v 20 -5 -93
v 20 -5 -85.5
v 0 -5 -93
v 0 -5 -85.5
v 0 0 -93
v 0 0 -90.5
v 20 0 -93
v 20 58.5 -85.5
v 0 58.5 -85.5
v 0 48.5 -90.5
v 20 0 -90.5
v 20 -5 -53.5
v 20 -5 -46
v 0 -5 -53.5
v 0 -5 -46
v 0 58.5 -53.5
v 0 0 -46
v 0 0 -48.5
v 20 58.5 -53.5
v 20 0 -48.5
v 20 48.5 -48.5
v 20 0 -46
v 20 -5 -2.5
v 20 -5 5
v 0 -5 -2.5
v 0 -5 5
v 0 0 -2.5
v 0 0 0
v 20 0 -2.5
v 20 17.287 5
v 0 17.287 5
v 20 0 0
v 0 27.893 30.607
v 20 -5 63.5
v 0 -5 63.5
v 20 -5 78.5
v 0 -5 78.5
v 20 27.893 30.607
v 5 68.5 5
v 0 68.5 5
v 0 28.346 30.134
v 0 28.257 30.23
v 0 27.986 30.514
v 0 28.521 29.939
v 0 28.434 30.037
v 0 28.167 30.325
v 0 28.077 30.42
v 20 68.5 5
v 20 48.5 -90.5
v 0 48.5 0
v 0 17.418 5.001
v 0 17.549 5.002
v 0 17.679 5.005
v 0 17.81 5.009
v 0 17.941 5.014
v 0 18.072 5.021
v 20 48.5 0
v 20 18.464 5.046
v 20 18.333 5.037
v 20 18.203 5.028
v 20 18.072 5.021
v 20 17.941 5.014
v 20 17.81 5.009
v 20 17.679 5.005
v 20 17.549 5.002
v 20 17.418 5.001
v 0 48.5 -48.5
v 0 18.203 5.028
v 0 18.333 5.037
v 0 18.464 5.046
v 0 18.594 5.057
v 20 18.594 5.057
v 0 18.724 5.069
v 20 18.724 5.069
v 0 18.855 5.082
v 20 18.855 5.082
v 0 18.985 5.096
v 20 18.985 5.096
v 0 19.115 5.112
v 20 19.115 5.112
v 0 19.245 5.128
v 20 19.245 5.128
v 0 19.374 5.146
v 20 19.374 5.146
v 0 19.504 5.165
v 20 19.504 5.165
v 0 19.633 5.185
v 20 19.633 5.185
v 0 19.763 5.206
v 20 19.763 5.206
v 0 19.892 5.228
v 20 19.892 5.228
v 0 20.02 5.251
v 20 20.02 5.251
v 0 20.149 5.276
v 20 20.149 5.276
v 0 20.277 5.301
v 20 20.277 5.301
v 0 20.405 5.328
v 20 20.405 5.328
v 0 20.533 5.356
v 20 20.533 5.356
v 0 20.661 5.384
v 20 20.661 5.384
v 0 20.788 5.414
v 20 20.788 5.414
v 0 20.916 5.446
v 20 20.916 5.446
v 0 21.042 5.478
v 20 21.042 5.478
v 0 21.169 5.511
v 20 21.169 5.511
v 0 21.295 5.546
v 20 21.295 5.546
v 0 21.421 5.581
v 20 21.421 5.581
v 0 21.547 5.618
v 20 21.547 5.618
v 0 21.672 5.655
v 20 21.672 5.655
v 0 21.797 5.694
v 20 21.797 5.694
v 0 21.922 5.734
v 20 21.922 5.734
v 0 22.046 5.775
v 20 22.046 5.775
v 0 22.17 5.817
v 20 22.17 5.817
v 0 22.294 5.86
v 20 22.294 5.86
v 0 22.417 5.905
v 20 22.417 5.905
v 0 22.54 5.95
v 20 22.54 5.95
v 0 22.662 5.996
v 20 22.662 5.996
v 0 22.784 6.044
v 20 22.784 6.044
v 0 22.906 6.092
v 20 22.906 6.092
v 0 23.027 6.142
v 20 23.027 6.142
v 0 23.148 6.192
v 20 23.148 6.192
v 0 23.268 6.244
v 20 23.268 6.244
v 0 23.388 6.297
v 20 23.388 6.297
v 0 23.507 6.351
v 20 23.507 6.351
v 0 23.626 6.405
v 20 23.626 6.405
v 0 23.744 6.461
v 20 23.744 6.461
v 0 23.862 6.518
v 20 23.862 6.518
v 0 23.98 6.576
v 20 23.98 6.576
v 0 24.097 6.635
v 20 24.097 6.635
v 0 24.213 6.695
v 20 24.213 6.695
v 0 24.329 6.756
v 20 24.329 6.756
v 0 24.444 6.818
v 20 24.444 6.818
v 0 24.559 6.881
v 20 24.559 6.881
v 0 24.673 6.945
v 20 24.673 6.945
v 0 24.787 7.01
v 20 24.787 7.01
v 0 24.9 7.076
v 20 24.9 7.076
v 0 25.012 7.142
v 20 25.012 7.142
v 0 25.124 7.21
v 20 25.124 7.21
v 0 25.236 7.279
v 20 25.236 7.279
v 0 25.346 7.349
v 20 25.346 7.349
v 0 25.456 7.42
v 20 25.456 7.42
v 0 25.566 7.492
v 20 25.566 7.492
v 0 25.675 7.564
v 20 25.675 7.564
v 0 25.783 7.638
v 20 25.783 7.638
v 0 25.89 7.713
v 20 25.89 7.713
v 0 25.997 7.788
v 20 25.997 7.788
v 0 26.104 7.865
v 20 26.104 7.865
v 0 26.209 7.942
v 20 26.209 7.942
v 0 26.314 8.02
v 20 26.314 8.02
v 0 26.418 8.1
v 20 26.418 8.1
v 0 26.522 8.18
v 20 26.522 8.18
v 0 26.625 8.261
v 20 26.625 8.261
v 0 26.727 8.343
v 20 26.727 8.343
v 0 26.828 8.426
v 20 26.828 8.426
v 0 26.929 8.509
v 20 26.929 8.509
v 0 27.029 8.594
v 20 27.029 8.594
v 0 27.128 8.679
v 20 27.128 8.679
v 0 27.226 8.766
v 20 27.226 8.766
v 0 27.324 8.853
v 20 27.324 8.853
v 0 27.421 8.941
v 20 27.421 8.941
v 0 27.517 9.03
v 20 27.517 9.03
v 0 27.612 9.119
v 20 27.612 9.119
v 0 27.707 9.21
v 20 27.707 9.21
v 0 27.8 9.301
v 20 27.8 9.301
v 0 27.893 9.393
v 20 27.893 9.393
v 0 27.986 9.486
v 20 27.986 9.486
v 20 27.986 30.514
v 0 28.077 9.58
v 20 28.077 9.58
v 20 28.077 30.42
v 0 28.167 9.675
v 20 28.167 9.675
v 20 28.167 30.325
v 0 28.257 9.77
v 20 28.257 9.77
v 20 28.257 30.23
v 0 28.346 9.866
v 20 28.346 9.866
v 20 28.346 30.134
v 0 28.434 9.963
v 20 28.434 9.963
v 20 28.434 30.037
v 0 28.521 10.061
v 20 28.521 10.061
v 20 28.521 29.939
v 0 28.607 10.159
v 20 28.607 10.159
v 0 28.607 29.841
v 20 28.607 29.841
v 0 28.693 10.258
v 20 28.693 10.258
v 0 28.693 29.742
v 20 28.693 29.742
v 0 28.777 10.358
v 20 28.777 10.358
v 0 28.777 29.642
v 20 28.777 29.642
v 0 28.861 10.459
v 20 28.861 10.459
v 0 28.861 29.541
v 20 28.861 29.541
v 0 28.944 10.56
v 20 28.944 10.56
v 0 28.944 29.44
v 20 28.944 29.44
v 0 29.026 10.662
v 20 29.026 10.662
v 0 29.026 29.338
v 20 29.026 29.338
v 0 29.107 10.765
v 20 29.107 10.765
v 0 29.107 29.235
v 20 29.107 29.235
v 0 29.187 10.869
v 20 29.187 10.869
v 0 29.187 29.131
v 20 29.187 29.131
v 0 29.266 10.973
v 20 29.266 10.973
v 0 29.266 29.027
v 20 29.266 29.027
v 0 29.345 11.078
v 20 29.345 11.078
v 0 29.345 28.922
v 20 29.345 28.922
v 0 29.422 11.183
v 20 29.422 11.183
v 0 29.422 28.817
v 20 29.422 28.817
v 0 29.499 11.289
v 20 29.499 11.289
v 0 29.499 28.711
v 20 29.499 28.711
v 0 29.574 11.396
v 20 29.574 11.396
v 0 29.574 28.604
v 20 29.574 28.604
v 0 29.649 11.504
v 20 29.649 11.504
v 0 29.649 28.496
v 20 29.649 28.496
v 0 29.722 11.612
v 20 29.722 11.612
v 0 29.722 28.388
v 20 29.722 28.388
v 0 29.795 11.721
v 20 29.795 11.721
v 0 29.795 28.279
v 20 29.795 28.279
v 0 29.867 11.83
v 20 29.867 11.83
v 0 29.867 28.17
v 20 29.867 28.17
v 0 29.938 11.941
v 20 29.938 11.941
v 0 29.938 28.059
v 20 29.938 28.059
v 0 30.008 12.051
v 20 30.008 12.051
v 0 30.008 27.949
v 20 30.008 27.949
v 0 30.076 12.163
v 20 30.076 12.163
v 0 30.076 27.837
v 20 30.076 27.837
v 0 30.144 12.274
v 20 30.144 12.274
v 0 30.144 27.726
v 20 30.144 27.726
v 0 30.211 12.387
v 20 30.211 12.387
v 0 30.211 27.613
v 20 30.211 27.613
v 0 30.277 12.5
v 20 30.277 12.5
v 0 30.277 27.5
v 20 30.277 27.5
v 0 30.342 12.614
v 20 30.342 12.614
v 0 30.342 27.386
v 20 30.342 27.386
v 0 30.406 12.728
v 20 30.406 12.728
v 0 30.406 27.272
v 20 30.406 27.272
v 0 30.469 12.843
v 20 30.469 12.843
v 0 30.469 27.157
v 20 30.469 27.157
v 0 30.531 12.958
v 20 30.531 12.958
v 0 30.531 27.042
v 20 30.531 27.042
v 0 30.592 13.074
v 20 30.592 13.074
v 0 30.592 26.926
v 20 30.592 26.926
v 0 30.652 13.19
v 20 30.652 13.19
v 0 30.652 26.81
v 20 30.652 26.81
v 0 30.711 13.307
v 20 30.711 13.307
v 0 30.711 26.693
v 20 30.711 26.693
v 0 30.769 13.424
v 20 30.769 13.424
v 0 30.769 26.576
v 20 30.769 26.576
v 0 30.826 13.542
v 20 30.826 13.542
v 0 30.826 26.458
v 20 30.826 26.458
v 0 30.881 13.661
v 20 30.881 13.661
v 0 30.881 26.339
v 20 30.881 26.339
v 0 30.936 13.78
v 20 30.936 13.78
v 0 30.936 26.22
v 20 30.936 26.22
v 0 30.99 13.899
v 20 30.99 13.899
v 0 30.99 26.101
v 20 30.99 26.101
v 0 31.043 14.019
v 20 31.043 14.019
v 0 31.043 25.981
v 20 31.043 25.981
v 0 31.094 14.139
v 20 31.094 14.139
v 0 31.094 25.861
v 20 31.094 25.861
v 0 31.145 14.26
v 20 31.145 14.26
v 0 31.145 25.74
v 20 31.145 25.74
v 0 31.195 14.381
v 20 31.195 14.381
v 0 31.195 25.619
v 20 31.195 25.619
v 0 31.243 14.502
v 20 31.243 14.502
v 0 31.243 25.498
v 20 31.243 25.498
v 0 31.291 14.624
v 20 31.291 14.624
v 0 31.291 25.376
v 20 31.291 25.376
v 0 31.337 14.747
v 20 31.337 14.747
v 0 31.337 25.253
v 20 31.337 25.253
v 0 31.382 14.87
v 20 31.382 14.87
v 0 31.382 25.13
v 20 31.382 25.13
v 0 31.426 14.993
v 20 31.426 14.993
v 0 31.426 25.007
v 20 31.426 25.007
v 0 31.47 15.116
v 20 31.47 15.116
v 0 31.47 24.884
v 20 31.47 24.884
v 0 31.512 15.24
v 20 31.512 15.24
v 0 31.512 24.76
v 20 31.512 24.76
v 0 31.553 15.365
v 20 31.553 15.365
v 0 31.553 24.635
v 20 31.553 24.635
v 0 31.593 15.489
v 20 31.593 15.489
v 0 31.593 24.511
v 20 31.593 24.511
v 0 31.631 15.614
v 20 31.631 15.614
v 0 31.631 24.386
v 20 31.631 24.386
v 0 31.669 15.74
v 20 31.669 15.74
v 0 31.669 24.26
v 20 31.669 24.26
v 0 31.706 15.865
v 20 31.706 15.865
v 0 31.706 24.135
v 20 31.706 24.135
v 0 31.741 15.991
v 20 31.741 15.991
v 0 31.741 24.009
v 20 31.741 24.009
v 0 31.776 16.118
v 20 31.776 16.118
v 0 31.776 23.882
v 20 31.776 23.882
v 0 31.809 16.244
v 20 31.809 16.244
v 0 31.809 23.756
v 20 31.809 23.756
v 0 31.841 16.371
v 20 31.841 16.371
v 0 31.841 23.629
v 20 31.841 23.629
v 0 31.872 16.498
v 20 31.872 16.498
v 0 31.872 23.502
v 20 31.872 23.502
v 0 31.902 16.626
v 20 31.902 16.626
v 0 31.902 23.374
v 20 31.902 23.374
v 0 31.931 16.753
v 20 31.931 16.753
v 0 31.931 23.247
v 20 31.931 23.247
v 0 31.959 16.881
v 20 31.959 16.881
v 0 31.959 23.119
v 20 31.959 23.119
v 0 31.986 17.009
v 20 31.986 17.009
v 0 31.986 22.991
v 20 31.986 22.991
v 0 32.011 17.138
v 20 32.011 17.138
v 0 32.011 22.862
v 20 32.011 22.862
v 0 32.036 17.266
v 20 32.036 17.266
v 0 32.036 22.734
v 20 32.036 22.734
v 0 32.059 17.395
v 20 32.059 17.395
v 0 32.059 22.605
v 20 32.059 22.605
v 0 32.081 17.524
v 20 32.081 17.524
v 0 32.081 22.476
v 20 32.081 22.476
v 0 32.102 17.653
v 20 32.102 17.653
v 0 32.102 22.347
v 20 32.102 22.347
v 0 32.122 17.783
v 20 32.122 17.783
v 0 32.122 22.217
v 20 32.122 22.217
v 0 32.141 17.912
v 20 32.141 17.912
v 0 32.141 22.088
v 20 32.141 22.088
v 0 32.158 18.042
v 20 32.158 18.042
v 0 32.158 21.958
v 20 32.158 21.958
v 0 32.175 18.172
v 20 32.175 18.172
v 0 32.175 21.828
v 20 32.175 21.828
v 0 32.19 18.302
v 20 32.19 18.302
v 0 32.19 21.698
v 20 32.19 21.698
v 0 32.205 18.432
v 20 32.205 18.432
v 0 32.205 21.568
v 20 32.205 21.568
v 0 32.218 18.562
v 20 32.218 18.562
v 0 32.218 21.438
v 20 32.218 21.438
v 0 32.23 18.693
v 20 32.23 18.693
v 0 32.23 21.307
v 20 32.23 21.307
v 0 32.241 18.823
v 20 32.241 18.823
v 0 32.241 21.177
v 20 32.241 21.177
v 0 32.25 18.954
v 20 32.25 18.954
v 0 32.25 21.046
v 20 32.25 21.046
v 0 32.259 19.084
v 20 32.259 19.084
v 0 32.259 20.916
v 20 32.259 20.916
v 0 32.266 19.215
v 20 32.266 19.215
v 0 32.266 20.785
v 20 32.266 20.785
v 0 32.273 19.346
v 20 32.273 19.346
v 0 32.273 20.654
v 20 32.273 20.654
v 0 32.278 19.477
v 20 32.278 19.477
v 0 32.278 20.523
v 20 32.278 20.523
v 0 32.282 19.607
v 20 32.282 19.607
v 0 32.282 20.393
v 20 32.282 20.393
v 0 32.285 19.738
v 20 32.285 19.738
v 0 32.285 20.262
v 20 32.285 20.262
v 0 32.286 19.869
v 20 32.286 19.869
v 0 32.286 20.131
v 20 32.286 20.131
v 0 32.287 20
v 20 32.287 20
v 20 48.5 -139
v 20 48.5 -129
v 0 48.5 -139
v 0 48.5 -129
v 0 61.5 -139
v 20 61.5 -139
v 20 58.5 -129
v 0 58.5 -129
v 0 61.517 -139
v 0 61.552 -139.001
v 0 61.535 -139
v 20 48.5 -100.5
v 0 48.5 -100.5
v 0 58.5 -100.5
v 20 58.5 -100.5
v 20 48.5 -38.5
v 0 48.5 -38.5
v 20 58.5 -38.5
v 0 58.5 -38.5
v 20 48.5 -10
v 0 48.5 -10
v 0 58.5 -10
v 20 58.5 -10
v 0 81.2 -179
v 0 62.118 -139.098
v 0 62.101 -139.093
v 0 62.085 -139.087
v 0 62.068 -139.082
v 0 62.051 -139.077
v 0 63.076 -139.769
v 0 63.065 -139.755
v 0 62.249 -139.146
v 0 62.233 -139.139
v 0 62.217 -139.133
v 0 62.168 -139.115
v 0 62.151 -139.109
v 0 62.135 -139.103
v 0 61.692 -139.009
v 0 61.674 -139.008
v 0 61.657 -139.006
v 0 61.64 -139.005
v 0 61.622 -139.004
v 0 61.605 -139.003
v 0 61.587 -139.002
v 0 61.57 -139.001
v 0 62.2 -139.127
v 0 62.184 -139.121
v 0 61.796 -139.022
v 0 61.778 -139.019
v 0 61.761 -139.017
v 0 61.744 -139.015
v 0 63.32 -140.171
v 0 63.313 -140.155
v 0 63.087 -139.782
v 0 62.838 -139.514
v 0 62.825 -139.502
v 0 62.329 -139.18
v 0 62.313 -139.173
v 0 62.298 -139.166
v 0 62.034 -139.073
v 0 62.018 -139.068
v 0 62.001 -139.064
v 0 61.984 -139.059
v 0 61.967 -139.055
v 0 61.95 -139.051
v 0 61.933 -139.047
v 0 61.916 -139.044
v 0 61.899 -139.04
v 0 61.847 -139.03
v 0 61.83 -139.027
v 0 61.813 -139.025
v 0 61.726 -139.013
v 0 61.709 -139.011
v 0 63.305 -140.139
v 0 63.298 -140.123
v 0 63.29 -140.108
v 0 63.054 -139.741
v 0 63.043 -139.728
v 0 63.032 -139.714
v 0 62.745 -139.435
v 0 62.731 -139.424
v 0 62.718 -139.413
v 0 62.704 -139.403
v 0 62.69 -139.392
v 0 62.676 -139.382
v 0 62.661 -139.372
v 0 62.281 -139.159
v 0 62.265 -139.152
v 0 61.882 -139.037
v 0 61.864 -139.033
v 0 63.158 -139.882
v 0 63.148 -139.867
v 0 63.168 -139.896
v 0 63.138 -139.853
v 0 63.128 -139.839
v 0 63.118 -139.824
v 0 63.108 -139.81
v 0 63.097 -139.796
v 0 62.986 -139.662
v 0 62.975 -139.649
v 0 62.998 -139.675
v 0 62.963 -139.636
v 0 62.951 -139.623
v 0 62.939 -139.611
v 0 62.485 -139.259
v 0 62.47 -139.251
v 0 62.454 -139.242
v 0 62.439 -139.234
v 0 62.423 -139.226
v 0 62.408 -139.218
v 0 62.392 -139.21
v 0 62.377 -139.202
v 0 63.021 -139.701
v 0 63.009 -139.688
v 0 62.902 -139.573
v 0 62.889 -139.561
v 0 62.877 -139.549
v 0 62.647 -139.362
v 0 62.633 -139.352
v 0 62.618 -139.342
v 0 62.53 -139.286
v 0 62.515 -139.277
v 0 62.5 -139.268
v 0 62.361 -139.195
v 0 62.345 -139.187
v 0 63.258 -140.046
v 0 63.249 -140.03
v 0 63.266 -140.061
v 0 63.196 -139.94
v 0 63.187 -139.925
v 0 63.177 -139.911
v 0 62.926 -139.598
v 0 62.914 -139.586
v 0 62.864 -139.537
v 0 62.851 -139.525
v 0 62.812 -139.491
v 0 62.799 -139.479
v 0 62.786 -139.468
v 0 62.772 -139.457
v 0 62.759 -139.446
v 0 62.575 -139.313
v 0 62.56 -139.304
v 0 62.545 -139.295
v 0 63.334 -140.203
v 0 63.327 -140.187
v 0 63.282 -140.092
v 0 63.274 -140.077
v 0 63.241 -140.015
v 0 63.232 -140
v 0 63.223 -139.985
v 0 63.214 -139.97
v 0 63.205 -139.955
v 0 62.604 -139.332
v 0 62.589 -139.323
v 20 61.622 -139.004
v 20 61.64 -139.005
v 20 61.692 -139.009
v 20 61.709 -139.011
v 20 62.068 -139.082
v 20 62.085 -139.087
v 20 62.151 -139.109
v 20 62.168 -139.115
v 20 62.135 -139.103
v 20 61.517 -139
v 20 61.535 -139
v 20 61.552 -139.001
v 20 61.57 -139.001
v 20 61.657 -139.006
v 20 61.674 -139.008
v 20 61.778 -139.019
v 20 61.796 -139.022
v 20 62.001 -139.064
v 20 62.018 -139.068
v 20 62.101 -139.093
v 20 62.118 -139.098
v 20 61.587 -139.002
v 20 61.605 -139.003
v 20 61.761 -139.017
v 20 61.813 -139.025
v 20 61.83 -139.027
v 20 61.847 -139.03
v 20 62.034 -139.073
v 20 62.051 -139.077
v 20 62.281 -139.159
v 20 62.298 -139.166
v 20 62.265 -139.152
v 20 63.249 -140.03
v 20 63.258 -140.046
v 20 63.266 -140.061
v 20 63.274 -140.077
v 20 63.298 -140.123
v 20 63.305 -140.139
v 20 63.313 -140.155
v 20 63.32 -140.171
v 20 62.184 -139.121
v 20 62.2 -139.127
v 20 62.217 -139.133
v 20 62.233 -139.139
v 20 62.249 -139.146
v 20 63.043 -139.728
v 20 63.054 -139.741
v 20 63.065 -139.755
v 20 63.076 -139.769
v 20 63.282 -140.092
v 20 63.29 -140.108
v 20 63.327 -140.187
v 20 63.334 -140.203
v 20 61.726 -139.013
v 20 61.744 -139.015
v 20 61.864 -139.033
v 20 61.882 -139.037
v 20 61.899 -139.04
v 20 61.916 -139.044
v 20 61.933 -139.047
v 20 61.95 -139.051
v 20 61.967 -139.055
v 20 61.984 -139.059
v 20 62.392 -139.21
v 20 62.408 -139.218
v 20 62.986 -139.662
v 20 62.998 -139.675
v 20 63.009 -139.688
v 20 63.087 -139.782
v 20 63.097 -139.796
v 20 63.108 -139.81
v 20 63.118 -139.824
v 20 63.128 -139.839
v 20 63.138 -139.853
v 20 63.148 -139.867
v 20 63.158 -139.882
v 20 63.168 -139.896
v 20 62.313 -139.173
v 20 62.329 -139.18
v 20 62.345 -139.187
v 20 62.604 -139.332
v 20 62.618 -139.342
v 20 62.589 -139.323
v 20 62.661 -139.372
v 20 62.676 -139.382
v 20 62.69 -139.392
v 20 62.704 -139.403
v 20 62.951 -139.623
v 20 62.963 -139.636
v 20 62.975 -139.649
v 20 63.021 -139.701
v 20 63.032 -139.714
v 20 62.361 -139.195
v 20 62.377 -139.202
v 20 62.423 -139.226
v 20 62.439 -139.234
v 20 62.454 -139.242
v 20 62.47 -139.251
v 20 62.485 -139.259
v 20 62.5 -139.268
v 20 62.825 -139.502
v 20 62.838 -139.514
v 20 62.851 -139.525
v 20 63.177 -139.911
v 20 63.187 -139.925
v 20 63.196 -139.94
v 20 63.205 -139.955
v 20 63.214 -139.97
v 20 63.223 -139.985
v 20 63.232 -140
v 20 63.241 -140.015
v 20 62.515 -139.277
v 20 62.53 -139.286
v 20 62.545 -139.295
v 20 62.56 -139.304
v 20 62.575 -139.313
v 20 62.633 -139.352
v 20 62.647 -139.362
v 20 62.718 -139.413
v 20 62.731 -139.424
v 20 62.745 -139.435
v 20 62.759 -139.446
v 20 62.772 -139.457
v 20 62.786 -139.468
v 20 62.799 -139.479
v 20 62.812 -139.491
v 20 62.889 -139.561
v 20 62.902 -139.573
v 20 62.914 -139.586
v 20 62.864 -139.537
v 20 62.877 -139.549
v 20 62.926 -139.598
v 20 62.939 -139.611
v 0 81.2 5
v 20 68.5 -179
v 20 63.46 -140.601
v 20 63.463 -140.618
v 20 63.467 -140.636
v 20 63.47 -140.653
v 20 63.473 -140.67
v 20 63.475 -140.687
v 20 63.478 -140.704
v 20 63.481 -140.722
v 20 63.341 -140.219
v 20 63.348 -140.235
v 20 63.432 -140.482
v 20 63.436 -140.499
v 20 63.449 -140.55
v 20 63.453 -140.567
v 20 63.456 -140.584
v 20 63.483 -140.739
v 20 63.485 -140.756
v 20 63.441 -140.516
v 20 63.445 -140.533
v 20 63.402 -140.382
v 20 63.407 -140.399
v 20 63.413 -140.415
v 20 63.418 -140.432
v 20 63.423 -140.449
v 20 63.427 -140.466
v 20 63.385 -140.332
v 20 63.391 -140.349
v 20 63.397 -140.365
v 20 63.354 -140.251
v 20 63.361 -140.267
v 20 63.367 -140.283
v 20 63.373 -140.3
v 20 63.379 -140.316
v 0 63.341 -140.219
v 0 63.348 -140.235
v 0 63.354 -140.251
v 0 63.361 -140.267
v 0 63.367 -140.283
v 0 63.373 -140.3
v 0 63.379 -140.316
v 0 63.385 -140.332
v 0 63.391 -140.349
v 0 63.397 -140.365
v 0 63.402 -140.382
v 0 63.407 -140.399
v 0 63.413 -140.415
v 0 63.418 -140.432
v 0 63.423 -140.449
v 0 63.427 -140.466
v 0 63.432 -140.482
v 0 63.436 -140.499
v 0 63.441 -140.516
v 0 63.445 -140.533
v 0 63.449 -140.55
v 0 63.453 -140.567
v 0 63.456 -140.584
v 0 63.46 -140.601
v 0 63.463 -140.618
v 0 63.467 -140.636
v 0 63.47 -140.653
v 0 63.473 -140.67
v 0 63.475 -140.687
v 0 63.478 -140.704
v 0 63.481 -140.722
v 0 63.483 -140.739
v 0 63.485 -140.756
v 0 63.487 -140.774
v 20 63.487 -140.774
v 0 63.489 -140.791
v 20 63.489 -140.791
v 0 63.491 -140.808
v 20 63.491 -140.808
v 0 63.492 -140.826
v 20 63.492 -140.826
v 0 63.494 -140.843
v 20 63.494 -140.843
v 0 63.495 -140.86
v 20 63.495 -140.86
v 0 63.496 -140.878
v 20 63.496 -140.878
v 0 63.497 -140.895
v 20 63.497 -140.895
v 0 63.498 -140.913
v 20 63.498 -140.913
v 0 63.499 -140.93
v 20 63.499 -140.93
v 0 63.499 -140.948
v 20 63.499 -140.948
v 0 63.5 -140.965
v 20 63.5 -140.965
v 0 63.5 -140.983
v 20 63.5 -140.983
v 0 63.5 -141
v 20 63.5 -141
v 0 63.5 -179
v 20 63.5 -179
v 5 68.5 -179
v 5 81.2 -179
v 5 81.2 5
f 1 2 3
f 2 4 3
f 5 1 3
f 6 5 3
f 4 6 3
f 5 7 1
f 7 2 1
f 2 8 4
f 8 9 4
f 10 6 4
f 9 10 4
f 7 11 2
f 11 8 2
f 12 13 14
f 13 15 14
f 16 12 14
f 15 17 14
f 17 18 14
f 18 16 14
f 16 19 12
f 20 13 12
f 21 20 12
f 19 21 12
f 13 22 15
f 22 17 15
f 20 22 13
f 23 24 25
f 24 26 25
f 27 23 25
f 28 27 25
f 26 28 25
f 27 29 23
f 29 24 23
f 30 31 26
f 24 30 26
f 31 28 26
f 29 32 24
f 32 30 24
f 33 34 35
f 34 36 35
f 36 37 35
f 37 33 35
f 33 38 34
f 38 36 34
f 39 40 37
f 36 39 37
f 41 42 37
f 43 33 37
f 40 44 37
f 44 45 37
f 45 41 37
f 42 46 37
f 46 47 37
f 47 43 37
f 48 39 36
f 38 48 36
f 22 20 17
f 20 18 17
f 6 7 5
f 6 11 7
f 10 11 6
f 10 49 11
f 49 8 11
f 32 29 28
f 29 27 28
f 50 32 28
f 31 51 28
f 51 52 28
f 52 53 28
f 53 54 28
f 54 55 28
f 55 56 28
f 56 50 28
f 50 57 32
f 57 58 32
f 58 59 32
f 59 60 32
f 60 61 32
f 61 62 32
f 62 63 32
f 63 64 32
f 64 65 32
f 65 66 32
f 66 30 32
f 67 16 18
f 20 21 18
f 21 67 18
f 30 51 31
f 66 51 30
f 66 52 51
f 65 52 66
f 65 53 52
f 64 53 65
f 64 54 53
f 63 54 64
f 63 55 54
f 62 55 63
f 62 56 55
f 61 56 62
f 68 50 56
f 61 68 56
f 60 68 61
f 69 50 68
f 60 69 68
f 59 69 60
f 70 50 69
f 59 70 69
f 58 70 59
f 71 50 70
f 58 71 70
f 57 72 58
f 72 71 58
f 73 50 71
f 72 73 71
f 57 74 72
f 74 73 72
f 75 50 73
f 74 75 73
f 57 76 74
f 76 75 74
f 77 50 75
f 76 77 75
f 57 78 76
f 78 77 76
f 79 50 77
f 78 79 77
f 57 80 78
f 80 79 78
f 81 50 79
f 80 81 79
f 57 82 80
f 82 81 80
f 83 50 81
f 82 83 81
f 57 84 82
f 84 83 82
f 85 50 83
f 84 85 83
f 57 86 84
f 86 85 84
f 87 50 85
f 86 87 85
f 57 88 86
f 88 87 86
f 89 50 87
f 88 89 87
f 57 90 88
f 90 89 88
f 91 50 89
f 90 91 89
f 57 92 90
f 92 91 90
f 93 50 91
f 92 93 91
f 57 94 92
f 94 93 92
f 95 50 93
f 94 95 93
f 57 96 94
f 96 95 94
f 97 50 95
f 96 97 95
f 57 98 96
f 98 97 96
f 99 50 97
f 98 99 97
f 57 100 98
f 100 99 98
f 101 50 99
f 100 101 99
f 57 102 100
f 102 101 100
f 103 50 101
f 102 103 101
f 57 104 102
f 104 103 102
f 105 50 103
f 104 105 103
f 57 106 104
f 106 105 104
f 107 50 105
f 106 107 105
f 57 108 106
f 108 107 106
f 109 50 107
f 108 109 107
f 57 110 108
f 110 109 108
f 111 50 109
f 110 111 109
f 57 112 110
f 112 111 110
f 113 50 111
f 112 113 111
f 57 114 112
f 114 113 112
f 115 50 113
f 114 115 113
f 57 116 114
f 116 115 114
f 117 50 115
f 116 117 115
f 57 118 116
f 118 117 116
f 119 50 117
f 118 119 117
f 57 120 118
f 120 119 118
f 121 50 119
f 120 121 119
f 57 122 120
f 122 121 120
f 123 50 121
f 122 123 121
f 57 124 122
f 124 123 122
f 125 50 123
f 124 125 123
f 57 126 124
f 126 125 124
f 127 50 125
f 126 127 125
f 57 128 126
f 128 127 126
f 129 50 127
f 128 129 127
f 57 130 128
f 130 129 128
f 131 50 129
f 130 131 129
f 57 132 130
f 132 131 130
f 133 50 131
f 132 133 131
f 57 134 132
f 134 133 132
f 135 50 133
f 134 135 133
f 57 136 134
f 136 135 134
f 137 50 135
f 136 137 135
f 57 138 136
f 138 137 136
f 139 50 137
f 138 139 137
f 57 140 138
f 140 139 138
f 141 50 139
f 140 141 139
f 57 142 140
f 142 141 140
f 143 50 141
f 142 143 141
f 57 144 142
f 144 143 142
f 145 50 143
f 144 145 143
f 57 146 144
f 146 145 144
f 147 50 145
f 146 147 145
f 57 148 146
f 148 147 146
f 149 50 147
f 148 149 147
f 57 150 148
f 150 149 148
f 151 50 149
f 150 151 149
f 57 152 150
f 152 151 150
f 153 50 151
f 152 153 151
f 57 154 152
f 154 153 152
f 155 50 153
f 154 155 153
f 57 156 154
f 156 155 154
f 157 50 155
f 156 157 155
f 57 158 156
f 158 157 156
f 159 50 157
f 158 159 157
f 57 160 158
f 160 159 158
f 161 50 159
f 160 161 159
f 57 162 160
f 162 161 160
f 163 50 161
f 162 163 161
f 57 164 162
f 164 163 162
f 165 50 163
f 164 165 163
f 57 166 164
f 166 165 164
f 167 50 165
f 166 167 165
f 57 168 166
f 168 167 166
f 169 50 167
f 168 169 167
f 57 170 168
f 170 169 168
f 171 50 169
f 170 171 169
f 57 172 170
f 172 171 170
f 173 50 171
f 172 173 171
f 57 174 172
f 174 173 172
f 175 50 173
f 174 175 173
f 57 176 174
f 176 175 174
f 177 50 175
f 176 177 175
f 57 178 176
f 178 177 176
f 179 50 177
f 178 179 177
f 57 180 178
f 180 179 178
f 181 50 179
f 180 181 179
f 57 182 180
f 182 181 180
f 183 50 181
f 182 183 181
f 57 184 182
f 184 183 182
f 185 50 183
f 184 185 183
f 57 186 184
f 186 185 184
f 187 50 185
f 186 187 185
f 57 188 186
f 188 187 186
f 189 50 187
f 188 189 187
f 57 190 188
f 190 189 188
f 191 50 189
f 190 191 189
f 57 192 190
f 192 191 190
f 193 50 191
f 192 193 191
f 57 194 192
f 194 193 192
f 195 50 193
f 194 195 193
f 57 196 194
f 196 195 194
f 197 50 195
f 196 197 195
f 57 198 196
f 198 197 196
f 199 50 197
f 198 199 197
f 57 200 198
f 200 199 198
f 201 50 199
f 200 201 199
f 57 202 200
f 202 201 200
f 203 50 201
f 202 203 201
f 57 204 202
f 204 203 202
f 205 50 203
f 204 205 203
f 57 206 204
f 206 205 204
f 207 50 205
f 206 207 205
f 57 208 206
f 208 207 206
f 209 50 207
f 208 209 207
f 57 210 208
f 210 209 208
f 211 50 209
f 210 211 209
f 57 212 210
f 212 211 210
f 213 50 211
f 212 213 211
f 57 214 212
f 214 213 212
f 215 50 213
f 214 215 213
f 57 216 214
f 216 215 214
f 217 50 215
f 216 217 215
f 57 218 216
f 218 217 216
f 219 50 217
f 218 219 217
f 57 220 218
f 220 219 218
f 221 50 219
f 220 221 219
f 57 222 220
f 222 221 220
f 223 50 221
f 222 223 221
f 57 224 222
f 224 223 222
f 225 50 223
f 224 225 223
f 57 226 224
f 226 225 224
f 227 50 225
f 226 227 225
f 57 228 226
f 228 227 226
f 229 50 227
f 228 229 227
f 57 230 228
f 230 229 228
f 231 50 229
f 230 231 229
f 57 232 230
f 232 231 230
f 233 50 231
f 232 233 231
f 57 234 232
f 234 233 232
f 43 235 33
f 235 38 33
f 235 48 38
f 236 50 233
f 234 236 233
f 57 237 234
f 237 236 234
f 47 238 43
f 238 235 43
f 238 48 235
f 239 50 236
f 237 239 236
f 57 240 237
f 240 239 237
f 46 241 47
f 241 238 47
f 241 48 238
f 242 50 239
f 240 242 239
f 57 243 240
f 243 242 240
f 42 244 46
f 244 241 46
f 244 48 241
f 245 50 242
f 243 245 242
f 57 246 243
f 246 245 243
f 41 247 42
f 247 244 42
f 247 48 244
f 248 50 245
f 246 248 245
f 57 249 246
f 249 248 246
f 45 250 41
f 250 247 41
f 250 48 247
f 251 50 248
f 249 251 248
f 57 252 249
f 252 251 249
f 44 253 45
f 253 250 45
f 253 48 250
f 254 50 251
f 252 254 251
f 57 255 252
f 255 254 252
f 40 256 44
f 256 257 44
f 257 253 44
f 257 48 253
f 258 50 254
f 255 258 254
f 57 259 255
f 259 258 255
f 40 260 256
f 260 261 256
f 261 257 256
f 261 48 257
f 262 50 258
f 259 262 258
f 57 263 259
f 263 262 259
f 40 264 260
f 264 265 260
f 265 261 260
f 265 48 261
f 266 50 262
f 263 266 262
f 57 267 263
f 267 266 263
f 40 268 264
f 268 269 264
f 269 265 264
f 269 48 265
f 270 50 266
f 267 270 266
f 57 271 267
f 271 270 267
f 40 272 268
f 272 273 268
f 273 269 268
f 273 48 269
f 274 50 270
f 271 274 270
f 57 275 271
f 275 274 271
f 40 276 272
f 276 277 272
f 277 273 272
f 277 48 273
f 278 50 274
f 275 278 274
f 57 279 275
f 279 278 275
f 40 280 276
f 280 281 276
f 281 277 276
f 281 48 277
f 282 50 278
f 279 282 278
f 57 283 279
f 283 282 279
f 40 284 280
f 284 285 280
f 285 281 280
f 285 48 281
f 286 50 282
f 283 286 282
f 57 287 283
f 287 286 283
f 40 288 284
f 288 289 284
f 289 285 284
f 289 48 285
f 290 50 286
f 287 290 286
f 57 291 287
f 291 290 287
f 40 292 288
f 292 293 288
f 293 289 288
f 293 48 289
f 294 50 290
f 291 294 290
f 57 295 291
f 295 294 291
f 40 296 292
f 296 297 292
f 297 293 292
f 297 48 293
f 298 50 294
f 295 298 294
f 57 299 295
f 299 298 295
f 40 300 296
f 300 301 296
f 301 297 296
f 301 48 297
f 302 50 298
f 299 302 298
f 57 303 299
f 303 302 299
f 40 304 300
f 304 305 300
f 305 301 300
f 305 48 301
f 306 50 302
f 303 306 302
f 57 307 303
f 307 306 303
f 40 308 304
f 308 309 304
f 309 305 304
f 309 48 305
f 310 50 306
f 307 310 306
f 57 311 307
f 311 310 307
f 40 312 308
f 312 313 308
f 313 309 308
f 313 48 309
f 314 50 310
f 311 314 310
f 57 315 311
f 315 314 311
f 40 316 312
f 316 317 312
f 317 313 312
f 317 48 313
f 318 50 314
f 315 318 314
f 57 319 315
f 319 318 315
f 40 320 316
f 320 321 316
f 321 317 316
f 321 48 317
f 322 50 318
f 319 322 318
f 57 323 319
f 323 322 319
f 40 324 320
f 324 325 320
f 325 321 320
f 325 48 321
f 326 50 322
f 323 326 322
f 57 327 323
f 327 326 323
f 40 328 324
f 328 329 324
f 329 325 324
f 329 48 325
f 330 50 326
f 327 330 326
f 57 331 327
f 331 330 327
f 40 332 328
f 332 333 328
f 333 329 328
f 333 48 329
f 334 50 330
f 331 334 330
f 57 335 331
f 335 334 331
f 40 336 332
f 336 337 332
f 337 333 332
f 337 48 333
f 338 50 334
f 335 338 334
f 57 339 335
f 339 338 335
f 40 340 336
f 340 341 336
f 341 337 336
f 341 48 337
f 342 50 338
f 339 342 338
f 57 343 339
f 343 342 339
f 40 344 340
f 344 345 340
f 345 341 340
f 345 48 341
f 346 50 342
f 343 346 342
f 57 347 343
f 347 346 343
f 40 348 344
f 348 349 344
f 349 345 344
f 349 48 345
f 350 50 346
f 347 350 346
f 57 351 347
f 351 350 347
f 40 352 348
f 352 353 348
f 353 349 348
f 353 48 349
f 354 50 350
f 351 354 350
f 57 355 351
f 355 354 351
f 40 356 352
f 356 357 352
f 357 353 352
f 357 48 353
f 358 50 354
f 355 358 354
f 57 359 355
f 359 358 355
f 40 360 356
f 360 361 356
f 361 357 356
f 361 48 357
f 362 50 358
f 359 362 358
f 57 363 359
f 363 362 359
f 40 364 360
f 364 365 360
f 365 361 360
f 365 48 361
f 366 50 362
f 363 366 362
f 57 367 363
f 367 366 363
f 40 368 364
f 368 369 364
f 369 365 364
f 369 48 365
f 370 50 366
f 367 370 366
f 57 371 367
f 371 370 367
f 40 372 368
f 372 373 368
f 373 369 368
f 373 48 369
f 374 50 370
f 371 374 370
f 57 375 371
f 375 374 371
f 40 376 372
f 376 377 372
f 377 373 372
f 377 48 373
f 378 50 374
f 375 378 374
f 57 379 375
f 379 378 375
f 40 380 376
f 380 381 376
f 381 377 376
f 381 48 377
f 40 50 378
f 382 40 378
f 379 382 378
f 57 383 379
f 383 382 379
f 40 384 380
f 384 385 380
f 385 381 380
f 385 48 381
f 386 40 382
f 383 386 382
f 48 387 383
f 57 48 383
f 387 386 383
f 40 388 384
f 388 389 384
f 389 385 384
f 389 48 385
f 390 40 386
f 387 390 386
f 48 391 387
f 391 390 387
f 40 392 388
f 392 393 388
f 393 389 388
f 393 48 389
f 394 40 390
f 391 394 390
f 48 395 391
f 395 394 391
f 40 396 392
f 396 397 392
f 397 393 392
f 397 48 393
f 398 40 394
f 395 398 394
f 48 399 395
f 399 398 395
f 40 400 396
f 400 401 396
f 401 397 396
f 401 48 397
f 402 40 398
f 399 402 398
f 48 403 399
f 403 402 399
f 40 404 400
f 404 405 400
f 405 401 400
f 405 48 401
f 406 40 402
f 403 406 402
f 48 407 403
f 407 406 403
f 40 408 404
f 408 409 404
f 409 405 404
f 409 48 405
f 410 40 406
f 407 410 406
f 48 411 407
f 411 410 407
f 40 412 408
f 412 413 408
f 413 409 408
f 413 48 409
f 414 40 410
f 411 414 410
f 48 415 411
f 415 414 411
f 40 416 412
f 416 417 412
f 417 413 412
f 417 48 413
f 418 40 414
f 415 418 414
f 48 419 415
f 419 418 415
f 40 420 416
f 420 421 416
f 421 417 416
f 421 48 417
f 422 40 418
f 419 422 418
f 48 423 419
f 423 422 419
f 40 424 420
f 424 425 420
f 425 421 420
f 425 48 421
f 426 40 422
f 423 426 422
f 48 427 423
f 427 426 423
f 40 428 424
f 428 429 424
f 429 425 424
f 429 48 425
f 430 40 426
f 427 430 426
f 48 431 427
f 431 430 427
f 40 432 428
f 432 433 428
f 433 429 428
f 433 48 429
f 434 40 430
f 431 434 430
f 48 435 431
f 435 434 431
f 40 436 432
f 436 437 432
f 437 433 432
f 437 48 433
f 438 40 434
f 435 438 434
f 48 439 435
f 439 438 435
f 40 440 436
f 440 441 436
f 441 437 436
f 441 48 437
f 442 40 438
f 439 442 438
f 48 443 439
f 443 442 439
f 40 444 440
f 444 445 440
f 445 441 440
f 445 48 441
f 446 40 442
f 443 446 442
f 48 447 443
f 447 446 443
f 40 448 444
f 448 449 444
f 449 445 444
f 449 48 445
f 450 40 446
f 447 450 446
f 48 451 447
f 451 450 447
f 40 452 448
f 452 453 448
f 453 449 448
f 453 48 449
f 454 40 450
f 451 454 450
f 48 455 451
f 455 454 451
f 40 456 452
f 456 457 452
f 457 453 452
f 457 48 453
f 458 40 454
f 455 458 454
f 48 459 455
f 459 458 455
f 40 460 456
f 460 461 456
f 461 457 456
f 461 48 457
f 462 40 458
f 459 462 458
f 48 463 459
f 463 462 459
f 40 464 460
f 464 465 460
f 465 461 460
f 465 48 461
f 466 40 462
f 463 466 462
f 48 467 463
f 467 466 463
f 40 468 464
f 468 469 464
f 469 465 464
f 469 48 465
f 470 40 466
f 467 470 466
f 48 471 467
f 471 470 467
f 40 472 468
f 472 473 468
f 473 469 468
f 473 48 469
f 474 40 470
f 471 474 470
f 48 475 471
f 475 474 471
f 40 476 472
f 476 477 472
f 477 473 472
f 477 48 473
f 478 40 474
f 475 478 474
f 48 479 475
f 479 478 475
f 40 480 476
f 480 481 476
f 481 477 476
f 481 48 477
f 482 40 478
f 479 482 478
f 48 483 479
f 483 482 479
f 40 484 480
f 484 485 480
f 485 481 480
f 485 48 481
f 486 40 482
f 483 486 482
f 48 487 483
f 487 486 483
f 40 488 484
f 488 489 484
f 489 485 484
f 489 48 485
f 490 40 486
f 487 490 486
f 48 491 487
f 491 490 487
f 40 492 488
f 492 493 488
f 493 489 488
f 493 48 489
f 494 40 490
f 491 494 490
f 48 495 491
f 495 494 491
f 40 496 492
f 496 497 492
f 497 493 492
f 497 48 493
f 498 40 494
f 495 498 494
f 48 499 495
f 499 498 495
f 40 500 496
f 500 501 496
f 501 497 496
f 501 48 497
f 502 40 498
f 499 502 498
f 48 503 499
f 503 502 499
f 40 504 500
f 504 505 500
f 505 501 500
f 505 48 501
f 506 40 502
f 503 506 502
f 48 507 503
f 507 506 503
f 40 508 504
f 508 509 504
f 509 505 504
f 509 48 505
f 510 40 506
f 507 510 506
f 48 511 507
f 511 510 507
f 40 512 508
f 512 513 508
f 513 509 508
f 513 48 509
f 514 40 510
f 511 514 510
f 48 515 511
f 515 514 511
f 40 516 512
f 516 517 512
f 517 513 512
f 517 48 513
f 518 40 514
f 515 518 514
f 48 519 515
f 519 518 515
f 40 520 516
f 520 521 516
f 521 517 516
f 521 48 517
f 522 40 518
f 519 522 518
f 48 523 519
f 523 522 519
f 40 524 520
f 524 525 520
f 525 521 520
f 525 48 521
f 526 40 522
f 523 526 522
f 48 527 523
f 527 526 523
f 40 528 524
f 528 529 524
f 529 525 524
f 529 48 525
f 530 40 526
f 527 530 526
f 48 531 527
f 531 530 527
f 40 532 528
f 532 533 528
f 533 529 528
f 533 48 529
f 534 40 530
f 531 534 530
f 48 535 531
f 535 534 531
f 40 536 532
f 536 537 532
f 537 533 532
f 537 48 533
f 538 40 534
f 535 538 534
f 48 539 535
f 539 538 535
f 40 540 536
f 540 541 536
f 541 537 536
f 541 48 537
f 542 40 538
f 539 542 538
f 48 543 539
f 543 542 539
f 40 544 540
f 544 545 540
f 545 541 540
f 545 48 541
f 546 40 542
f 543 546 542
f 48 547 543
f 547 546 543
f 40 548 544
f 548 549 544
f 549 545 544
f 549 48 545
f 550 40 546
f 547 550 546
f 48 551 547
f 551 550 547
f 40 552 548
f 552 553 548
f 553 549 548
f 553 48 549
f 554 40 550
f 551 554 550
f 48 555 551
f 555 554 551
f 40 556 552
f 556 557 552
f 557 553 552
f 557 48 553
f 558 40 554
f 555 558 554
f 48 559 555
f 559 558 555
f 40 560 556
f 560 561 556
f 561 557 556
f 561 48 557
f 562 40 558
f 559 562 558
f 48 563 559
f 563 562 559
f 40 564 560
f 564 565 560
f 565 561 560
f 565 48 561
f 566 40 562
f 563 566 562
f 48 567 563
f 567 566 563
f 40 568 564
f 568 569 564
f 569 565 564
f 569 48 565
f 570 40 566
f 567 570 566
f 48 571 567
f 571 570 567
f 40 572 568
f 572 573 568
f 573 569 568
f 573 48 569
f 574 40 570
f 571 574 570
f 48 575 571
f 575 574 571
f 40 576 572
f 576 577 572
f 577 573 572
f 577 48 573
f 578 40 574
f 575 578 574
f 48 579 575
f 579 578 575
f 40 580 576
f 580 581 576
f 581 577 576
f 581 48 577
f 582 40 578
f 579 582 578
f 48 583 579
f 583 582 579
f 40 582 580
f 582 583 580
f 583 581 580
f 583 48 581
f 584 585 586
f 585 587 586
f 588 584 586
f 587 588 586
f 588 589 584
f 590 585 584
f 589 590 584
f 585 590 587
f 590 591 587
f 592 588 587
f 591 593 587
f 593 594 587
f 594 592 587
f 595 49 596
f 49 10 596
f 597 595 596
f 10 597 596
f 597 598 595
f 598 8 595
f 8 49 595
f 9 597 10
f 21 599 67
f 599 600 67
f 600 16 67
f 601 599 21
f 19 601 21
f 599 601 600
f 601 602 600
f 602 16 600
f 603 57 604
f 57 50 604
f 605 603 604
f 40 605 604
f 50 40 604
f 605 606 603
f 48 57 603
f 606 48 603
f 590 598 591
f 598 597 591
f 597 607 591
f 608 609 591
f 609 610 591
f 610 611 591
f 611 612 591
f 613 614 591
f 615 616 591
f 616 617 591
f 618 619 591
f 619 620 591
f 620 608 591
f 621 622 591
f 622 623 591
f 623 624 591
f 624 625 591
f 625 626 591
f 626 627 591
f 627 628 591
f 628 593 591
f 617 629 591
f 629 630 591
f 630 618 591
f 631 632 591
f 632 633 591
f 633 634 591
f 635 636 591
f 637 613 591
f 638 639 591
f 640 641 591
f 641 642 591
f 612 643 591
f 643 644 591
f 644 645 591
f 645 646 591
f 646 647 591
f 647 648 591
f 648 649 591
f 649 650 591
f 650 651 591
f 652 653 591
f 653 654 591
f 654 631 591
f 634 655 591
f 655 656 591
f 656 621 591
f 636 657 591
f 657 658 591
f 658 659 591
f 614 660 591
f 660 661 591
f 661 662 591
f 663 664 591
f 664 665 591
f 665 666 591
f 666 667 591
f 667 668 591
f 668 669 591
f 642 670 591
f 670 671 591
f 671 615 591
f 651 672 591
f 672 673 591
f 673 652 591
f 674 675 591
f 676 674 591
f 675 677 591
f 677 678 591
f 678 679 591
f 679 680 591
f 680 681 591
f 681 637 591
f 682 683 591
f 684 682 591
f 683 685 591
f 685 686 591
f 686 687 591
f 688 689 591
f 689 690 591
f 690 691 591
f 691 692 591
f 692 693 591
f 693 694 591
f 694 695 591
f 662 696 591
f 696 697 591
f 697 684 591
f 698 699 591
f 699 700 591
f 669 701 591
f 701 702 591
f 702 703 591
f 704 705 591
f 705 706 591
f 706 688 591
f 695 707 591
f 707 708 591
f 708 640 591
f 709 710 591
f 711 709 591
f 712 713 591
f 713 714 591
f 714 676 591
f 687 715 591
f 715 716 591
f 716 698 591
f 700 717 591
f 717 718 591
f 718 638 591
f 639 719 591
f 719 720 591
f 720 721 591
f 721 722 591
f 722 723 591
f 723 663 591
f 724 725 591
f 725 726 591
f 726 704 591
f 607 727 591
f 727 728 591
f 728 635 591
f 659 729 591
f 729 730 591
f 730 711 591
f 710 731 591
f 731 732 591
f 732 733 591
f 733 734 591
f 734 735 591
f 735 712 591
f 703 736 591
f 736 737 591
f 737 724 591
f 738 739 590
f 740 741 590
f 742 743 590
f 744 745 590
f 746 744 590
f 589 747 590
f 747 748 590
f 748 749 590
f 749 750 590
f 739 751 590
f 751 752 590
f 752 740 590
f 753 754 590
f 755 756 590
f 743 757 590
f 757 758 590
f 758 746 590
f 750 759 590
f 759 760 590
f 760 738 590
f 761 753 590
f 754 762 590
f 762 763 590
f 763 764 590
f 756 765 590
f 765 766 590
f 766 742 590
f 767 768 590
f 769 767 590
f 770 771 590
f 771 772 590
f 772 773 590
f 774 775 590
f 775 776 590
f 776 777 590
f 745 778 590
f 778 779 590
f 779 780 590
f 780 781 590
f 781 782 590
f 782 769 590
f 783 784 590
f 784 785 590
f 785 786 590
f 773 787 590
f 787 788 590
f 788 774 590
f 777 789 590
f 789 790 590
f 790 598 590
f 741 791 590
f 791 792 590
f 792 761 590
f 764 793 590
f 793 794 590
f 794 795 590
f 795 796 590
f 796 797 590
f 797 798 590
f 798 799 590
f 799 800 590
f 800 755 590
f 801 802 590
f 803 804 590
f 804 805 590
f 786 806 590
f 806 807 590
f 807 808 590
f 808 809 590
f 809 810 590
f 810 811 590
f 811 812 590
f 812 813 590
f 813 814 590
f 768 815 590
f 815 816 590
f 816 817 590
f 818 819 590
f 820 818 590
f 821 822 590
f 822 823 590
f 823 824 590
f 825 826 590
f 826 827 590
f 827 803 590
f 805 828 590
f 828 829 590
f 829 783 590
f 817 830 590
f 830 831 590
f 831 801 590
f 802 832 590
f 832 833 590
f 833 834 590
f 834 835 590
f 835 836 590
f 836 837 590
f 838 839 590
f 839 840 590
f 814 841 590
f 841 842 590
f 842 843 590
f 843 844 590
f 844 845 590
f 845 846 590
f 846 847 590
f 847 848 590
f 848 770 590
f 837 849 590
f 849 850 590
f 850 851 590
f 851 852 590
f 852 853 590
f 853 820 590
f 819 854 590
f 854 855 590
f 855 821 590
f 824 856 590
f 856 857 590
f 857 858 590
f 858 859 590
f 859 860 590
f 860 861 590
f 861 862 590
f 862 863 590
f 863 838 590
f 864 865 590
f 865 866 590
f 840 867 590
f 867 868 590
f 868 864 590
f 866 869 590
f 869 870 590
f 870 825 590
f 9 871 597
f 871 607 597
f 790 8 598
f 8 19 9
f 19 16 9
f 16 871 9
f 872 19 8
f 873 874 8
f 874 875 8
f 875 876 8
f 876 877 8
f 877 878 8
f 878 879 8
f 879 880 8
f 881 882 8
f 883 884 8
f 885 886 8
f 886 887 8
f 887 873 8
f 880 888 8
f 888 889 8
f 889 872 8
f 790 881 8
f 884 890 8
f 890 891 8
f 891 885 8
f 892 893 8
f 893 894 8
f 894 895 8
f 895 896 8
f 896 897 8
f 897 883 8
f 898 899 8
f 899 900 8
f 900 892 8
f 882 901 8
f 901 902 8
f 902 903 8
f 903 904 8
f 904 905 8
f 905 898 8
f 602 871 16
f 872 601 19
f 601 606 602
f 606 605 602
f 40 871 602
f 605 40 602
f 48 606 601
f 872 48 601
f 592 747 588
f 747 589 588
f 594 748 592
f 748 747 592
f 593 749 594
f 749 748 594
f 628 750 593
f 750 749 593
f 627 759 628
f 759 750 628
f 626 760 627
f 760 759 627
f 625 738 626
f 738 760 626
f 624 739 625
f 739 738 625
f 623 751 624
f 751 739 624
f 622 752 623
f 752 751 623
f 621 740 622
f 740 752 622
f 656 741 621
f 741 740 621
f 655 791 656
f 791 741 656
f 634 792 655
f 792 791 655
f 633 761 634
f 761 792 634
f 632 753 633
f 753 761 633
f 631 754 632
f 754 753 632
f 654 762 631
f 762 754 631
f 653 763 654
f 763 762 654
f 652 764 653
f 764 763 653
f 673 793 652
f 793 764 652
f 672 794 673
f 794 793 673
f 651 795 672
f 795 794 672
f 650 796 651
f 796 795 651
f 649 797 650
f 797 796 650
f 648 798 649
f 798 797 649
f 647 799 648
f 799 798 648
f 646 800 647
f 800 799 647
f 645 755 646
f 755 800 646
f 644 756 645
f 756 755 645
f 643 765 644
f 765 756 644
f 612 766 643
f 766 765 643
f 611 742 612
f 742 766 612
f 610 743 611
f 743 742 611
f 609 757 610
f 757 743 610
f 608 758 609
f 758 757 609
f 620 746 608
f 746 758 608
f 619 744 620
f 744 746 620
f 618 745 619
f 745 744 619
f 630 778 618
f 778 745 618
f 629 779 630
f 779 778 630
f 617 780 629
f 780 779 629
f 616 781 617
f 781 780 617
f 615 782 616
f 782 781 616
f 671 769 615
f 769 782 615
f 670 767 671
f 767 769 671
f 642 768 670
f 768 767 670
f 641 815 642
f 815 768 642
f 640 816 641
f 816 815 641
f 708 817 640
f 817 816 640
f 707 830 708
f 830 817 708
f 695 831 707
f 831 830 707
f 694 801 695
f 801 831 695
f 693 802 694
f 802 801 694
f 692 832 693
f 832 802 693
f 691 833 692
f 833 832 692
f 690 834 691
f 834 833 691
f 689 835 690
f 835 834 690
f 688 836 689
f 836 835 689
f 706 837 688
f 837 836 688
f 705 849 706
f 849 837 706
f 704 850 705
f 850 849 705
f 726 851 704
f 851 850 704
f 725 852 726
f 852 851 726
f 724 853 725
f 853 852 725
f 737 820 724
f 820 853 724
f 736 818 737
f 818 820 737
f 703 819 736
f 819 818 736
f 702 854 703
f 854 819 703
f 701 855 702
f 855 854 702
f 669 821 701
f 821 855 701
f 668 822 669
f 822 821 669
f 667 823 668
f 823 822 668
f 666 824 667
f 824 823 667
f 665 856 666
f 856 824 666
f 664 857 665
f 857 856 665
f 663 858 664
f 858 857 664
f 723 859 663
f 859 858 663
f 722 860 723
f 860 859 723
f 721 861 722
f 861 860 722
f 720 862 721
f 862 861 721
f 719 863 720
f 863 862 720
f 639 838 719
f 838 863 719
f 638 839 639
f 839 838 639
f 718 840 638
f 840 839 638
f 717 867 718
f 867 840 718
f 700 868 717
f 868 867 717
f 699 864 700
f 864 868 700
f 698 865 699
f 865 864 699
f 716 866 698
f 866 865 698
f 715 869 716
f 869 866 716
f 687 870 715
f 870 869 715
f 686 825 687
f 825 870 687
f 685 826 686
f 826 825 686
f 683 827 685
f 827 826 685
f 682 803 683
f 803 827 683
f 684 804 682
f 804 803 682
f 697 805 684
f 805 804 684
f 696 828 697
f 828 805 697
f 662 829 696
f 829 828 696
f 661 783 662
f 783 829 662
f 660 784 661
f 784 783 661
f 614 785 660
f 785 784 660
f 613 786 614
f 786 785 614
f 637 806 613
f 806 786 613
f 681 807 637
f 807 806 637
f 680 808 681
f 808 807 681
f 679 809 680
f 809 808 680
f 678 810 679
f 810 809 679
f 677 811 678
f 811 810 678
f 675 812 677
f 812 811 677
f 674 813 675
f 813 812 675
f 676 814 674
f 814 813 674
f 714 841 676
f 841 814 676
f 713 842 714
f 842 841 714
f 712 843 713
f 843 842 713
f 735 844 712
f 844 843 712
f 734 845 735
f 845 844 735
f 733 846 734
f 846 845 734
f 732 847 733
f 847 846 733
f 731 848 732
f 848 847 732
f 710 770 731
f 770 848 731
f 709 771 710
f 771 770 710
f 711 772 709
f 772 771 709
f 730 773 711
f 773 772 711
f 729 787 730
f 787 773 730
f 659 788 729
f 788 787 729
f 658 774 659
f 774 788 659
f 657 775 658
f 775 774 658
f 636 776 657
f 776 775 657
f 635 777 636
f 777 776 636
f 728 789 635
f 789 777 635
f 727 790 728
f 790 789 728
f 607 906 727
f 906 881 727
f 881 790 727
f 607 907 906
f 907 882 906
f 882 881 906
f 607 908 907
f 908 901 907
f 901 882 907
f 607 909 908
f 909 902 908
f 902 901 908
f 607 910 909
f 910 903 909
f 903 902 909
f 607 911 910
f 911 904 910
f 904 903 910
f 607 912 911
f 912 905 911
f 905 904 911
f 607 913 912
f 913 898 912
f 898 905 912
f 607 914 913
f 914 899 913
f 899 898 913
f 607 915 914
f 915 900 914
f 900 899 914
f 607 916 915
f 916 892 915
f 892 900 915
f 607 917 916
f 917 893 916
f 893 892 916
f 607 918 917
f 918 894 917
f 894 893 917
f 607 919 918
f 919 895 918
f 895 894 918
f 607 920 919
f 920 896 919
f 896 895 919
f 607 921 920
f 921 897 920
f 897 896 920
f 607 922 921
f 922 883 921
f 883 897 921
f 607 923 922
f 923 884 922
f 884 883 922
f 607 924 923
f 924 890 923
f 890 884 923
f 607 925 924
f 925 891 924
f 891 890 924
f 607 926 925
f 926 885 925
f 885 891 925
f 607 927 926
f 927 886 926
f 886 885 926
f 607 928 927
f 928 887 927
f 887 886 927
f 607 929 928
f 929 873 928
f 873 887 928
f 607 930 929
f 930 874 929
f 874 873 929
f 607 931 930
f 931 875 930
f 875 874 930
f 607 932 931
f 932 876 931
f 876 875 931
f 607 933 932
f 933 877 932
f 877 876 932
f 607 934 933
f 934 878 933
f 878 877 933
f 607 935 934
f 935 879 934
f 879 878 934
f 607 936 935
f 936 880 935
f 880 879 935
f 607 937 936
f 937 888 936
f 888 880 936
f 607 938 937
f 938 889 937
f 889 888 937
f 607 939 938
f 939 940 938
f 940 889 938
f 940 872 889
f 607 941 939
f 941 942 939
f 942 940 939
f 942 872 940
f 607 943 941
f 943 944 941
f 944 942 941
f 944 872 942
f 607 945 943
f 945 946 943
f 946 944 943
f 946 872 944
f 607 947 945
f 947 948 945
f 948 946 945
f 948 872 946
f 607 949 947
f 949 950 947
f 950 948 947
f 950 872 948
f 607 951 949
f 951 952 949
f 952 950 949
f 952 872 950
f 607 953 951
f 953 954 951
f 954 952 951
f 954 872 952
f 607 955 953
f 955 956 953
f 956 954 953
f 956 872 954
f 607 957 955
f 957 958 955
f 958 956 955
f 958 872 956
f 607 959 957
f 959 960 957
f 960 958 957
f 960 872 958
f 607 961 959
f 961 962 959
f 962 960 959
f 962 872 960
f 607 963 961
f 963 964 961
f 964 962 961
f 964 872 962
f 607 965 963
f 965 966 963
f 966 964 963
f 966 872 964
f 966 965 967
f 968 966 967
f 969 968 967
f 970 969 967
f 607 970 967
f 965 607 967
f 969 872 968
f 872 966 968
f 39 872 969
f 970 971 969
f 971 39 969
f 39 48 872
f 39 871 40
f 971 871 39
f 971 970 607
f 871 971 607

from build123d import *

# Parameters (mm, degrees)
SKETCH1_W           = 5
SKETCH1_H           = 5
SKETCH1_W_2         = 35
BOSS_EXTRUDE2_DEPTH = 20
FILLET1_R           = 15
FILLET2_R           = 2
BOSS_EXTRUDE3_DEPTH = 12.7


with BuildPart() as part:
    # Sketch1 → Boss-Extrude2 (new body)
    with BuildSketch(Plane(origin=(0, 0, 0), x_dir=(0, 0, -1), z_dir=(1, 0, 0))):
        Polygon((-5, 53.5), (-5, 68.5), (-78.5, -5), (-63.5, -5), align=None)
        Polygon((69.5, 68.5), (-5, 68.5), (-5, 53.5), (-5, -5), (2.5, -5), (2.5, 0), (0, 0), (0, 48.5), (10, 48.5), (10, 58.5), (38.5, 58.5), (38.5, 48.5), (48.5, 48.5), (48.5, 0), (53.5, 0), (53.5, 58.5), (69.5, 58.5), align=None)
        Polygon((139, 68.5), (69.5, 68.5), (69.5, 58.5), (85.5, 58.5), (85.5, 0), (90.5, 0), (90.5, 48.5), (100.5, 48.5), (100.5, 58.5), (129, 58.5), (129, 48.5), (139, 48.5), (139, 63.5), align=None)
        Polygon((90.5, 0), (93, 0), (93, -5), (85.5, -5), (85.5, 0), align=None)
        Polygon((53.5, -5), (46, -5), (46, 0), (48.5, 0), (53.5, 0), align=None)
        with Locations((141.5, 66)):
            Rectangle(SKETCH1_W, SKETCH1_H)
        with Locations((161.5, 66)):
            Rectangle(SKETCH1_W_2, SKETCH1_H)
    extrude(amount=BOSS_EXTRUDE2_DEPTH)

    # Fillet1
    fillet1_edges = [part.edges().sort_by_distance(p)[0] for p in [
        (10, 53.5, 5),
    ]]
    fillet(fillet1_edges, radius=FILLET1_R)

    # Fillet2
    fillet2_edges = [part.edges().sort_by_distance(p)[0] for p in [
        (10, 63.5, -139),
    ]]
    fillet(fillet2_edges, radius=FILLET2_R)

    # Sketch2 → Boss-Extrude3 (add)
    with BuildSketch(Plane(origin=(0, 68.5, 0), x_dir=(1, 0, 0), z_dir=(0, 1, 0))):
        Polygon((5, 35), (5, 179), (0, 179), (0, -5), (5, -5), align=None)
    extrude(amount=BOSS_EXTRUDE3_DEPTH)


solid = part.part
